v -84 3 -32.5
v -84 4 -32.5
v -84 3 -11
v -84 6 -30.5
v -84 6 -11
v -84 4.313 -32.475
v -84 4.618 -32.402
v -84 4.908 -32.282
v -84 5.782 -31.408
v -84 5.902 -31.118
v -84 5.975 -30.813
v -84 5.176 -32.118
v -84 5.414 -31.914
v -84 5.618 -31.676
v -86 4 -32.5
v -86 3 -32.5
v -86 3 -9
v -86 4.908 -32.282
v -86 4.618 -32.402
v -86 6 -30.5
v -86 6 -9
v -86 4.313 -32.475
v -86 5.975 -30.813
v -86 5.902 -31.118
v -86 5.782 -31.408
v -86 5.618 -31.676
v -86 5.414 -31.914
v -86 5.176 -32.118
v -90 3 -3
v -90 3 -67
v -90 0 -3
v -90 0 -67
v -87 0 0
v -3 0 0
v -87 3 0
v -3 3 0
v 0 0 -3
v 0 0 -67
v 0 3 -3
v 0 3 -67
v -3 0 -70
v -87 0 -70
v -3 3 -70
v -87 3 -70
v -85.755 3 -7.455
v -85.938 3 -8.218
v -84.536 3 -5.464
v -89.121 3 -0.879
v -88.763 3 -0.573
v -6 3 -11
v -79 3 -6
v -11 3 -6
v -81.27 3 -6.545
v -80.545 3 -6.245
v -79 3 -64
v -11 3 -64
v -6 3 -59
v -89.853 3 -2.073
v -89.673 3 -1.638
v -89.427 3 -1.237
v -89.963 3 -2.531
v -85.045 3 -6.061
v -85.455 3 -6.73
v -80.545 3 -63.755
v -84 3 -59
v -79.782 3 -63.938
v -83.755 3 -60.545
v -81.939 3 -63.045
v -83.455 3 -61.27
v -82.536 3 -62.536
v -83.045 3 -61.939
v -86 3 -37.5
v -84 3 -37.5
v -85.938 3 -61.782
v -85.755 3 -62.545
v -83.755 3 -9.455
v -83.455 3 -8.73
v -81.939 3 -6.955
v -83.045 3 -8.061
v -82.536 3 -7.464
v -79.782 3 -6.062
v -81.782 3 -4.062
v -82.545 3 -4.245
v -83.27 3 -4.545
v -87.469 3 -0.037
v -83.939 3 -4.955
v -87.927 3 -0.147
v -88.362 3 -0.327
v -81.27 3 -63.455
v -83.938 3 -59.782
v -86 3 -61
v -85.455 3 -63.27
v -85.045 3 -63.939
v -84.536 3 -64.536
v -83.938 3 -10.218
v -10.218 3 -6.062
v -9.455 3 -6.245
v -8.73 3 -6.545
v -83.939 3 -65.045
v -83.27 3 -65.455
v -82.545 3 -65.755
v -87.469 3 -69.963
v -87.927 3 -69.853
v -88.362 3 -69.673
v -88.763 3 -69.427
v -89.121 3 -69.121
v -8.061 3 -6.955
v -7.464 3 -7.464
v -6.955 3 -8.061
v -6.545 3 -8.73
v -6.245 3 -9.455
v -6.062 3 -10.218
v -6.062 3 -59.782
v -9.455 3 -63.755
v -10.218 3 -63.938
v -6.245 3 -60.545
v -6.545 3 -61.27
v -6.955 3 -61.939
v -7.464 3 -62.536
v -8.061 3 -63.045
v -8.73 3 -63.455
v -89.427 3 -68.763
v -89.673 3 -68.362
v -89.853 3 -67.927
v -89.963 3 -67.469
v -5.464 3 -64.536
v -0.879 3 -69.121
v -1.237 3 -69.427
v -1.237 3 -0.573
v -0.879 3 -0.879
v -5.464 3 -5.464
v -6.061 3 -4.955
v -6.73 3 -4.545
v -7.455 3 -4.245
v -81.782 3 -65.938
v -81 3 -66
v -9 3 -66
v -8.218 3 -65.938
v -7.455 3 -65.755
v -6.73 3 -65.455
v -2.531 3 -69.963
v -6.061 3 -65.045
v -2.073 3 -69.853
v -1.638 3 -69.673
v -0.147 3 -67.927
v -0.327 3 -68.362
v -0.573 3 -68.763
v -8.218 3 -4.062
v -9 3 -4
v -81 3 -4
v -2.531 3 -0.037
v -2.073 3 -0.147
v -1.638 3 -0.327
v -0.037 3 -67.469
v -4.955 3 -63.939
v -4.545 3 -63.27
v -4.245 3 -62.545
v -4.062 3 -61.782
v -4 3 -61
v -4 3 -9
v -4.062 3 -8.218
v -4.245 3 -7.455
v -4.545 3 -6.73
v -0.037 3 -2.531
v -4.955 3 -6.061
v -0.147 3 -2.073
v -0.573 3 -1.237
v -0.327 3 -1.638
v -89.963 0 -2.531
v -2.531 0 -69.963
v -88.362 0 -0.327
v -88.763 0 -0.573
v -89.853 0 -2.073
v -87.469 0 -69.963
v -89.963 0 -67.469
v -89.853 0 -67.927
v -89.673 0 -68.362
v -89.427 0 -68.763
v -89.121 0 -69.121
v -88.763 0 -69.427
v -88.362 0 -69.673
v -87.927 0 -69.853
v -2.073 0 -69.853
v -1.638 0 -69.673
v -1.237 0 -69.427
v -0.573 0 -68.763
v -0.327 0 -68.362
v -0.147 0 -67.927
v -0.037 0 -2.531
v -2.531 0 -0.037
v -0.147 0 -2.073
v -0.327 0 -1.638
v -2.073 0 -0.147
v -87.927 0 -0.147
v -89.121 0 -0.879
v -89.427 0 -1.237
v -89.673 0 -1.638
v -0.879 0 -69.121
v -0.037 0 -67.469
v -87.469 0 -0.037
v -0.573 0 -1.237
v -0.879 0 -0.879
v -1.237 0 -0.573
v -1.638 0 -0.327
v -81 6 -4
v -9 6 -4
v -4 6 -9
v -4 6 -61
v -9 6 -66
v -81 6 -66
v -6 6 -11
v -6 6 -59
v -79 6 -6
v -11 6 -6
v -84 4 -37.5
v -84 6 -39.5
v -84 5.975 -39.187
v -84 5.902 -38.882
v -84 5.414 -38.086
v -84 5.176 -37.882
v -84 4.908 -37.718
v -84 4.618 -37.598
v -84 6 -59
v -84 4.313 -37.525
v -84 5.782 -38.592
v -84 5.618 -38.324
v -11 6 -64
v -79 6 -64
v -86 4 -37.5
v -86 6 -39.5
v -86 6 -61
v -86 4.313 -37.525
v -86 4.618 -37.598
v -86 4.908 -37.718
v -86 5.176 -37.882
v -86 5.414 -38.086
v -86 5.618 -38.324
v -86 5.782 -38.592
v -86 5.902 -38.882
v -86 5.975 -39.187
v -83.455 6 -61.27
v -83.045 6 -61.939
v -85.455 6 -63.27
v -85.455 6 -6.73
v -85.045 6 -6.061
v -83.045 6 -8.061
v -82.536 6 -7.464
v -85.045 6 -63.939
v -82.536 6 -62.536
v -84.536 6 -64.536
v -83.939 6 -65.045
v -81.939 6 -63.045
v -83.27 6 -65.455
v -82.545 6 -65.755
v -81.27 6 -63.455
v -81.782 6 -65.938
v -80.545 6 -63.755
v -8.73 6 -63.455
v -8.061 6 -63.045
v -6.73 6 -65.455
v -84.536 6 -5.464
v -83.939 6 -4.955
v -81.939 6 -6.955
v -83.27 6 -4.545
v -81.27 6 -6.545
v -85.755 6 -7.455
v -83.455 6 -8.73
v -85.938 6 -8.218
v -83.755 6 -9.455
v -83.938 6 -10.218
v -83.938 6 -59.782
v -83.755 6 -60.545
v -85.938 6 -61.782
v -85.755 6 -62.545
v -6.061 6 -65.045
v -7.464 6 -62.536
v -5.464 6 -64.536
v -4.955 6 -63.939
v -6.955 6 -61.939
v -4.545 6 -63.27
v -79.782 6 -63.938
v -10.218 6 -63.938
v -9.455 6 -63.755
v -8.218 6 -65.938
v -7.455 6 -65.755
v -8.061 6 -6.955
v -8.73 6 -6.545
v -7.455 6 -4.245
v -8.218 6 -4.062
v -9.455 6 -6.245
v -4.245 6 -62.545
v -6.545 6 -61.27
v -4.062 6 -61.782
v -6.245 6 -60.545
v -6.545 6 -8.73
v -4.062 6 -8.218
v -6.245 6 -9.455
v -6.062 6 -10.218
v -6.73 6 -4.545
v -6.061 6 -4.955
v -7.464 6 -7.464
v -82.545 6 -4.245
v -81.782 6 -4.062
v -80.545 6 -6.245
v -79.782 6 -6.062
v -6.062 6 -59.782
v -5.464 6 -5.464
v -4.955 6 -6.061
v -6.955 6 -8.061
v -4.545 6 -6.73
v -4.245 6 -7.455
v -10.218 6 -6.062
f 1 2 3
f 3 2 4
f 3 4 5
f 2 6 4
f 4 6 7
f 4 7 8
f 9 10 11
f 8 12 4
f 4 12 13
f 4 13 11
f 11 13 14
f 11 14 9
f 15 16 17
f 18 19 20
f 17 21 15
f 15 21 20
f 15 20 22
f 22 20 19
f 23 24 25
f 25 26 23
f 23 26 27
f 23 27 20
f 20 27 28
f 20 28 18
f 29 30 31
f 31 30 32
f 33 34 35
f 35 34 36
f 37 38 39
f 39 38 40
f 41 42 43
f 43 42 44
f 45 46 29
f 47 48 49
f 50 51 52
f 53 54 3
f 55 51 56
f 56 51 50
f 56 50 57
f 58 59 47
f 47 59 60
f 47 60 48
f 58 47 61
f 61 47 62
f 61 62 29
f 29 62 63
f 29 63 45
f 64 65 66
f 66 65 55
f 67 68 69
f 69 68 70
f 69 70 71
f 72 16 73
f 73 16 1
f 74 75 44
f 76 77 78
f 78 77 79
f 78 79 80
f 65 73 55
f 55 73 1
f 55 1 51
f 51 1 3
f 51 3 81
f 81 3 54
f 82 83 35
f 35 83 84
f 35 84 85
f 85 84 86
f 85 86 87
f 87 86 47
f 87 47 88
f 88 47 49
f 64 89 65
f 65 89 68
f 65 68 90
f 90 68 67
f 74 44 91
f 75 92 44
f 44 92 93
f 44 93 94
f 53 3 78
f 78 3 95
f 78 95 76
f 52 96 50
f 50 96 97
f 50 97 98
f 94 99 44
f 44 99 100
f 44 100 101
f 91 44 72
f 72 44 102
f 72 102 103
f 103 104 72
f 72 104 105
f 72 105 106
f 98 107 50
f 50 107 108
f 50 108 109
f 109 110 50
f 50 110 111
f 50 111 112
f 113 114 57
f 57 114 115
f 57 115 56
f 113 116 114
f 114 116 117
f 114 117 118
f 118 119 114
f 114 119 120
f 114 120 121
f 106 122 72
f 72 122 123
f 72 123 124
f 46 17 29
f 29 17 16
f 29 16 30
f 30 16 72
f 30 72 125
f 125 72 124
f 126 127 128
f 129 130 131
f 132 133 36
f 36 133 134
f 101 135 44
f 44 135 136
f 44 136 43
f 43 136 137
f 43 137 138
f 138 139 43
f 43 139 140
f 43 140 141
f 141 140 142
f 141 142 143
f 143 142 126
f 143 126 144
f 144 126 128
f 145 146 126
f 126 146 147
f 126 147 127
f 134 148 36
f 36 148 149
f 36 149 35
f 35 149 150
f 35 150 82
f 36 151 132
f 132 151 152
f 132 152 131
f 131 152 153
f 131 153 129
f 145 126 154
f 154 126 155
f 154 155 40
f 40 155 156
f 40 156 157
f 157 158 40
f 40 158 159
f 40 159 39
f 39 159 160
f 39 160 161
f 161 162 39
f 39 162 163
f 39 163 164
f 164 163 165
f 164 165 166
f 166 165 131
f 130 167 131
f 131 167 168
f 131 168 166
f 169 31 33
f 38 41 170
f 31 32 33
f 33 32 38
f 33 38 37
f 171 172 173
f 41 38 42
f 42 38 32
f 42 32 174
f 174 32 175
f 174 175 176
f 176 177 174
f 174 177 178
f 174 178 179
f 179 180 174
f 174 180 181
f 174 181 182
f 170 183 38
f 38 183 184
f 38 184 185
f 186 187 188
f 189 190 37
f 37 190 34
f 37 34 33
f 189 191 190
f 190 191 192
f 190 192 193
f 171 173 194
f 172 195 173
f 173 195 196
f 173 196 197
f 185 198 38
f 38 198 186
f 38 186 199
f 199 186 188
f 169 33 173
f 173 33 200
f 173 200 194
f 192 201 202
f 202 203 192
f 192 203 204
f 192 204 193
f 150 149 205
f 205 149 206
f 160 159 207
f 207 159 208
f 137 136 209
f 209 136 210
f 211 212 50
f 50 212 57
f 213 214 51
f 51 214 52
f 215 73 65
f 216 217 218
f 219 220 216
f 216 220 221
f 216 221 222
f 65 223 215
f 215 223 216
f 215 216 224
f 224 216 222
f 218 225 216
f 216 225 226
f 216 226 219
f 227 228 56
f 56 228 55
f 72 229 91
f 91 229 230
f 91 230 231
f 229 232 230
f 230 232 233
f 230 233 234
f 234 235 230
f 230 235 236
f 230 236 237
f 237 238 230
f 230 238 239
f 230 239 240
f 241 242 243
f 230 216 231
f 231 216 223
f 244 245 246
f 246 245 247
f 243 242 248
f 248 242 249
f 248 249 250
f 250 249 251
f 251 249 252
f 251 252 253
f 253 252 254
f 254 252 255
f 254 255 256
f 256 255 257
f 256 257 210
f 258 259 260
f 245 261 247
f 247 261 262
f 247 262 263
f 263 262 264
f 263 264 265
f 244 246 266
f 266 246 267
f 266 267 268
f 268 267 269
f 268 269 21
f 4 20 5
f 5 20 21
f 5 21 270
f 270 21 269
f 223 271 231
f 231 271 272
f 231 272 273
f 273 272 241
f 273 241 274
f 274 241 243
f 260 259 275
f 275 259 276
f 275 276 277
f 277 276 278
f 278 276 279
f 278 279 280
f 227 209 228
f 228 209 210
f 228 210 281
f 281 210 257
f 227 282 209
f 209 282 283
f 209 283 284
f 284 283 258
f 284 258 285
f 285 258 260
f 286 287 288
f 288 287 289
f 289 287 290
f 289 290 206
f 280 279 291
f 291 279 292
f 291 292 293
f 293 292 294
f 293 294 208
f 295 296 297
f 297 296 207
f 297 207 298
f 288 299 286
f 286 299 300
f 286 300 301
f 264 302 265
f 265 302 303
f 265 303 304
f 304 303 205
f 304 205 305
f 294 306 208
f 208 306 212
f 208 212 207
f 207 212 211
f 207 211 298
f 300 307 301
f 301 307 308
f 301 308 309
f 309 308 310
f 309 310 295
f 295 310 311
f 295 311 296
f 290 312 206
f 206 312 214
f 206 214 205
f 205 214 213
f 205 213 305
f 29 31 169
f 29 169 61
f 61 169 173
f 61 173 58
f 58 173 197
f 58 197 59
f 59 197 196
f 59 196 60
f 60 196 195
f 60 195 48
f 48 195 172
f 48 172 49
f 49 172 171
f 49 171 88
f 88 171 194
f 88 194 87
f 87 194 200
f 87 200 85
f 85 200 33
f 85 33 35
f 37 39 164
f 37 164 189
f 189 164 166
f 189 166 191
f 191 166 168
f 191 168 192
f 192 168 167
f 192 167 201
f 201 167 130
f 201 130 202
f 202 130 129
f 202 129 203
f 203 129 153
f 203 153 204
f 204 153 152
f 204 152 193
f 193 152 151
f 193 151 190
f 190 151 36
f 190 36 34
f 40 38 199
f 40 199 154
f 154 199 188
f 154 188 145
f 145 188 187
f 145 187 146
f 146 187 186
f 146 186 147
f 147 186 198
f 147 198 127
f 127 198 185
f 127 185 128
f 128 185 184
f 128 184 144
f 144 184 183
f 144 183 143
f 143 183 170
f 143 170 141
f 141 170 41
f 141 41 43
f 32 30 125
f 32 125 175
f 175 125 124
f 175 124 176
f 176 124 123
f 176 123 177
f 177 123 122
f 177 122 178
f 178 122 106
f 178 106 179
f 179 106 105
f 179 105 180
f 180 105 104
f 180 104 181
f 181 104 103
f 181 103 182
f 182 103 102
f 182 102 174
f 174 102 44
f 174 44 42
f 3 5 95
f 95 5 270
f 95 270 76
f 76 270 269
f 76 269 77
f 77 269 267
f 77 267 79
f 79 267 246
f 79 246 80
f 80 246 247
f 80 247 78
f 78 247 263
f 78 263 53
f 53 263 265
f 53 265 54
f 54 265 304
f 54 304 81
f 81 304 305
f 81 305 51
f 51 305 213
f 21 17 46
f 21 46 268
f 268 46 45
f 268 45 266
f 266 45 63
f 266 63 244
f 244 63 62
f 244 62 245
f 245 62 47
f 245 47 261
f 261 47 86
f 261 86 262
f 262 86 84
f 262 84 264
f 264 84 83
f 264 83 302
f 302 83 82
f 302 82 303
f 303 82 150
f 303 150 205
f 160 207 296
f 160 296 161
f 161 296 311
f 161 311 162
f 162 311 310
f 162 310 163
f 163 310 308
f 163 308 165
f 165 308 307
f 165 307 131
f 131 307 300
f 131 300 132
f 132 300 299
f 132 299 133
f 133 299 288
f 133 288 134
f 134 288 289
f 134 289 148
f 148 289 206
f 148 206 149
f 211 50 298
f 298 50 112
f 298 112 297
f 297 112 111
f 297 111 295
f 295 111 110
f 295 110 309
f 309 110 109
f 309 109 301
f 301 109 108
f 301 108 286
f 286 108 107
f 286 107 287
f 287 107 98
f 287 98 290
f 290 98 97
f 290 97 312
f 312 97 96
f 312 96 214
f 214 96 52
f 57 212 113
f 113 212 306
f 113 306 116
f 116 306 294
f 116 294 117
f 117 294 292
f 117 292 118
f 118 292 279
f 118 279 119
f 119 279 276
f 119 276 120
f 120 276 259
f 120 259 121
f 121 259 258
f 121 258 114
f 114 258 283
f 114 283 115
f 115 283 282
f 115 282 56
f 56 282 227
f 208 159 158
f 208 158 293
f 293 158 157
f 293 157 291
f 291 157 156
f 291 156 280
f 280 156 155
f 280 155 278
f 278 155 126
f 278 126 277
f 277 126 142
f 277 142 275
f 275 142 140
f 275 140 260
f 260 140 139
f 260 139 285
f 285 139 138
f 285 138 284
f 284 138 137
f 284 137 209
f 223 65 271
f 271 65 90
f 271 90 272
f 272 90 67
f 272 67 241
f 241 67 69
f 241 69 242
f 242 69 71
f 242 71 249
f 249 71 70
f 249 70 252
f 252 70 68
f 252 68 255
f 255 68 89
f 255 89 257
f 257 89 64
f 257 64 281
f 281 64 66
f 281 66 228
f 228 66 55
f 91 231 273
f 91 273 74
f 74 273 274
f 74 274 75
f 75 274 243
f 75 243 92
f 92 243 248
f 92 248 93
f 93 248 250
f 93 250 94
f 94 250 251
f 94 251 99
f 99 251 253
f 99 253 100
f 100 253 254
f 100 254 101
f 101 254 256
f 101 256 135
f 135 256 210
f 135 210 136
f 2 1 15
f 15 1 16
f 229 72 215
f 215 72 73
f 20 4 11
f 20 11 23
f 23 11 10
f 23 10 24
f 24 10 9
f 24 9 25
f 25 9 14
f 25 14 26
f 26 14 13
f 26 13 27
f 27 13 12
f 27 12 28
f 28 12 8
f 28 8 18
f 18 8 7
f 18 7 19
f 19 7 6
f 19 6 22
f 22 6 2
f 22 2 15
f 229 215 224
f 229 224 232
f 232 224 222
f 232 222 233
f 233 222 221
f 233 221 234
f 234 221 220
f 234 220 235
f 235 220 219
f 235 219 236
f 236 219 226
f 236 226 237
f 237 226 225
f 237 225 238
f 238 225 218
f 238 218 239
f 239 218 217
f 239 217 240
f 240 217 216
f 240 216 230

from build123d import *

# Parameters (mm, degrees)
ESBO_O1_W                = 90
ESBO_O1_H                = 70
RESSALTO_EXTRUS_O1_DEPTH = 3
ESBO_O1_3_W              = 82
ESBO_O1_3_H              = 62
ESBO_O1_3_W_2            = 78
ESBO_O1_3_H_2            = 58
RESSALTO_EXTRUS_O2_DEPTH = 6
FILETE1_R                = 3
FILETE2_R                = 5
CORTE_EXTRUS_O1_REACH    = 113.05
ESBO_O2_W                = 5
ESBO_O2_H                = 3
FILETE3_R                = 2


with BuildPart() as part:
    # Esboço1 → Ressalto-extrusão1 (new body)
    with BuildSketch(Plane(origin=(0, 0, 0), x_dir=(1, 0, 0), z_dir=(0, 1, 0))):
        with Locations((-45, 35)):
            Rectangle(ESBO_O1_W, ESBO_O1_H)
    extrude(amount=RESSALTO_EXTRUS_O1_DEPTH)

    # Esboço1<3> → Ressalto-extrusão2 (add)
    with BuildSketch(Plane(origin=(0, 0, 0), x_dir=(1, 0, 0), z_dir=(0, 1, 0))):
        with Locations((-45, 35)):
            Rectangle(ESBO_O1_3_W, ESBO_O1_3_H)
        with Locations((-45, 35)):
            Rectangle(ESBO_O1_3_W_2, ESBO_O1_3_H_2, mode=Mode.SUBTRACT)
    extrude(amount=RESSALTO_EXTRUS_O2_DEPTH)

    # Filete1
    filete1_edges = [part.edges().sort_by_distance(p)[0] for p in [
        (-90, 1.5, 0),
        (0, 1.5, 0),
        (0, 1.5, -70),
        (-90, 1.5, -70),
    ]]
    fillet(filete1_edges, radius=FILETE1_R)

    # Filete2
    filete2_edges = [part.edges().sort_by_distance(p)[0] for p in [
        (-84, 4.5, -6),
        (-86, 4.5, -4),
        (-4, 4.5, -4),
        (-6, 4.5, -6),
        (-6, 4.5, -64),
        (-4, 4.5, -66),
        (-84, 4.5, -64),
        (-86, 4.5, -66),
    ]]
    fillet(filete2_edges, radius=FILETE2_R)

    # Esboço2 → Corte-extrusão1 (cut, up to next)
    with BuildSketch(Plane.ZY.offset(86), mode=Mode.PRIVATE) as corte_extrus_o1_sk1:
        with Locations((-35, 4.5)):
            Rectangle(ESBO_O2_W, ESBO_O2_H)
    corte_extrus_o1_tool1 = extrude(corte_extrus_o1_sk1.sketch, amount=-CORTE_EXTRUS_O1_REACH, mode=Mode.PRIVATE) & part.part
    add(corte_extrus_o1_tool1.solids().sort_by_distance((-86, 4.5, -35))[0], mode=Mode.SUBTRACT)

    # Filete3
    filete3_edges = [part.edges().sort_by_distance(p)[0] for p in [
        (-85, 6, -32.5),
        (-85, 6, -37.5),
    ]]
    fillet(filete3_edges, radius=FILETE3_R)


solid = part.part
